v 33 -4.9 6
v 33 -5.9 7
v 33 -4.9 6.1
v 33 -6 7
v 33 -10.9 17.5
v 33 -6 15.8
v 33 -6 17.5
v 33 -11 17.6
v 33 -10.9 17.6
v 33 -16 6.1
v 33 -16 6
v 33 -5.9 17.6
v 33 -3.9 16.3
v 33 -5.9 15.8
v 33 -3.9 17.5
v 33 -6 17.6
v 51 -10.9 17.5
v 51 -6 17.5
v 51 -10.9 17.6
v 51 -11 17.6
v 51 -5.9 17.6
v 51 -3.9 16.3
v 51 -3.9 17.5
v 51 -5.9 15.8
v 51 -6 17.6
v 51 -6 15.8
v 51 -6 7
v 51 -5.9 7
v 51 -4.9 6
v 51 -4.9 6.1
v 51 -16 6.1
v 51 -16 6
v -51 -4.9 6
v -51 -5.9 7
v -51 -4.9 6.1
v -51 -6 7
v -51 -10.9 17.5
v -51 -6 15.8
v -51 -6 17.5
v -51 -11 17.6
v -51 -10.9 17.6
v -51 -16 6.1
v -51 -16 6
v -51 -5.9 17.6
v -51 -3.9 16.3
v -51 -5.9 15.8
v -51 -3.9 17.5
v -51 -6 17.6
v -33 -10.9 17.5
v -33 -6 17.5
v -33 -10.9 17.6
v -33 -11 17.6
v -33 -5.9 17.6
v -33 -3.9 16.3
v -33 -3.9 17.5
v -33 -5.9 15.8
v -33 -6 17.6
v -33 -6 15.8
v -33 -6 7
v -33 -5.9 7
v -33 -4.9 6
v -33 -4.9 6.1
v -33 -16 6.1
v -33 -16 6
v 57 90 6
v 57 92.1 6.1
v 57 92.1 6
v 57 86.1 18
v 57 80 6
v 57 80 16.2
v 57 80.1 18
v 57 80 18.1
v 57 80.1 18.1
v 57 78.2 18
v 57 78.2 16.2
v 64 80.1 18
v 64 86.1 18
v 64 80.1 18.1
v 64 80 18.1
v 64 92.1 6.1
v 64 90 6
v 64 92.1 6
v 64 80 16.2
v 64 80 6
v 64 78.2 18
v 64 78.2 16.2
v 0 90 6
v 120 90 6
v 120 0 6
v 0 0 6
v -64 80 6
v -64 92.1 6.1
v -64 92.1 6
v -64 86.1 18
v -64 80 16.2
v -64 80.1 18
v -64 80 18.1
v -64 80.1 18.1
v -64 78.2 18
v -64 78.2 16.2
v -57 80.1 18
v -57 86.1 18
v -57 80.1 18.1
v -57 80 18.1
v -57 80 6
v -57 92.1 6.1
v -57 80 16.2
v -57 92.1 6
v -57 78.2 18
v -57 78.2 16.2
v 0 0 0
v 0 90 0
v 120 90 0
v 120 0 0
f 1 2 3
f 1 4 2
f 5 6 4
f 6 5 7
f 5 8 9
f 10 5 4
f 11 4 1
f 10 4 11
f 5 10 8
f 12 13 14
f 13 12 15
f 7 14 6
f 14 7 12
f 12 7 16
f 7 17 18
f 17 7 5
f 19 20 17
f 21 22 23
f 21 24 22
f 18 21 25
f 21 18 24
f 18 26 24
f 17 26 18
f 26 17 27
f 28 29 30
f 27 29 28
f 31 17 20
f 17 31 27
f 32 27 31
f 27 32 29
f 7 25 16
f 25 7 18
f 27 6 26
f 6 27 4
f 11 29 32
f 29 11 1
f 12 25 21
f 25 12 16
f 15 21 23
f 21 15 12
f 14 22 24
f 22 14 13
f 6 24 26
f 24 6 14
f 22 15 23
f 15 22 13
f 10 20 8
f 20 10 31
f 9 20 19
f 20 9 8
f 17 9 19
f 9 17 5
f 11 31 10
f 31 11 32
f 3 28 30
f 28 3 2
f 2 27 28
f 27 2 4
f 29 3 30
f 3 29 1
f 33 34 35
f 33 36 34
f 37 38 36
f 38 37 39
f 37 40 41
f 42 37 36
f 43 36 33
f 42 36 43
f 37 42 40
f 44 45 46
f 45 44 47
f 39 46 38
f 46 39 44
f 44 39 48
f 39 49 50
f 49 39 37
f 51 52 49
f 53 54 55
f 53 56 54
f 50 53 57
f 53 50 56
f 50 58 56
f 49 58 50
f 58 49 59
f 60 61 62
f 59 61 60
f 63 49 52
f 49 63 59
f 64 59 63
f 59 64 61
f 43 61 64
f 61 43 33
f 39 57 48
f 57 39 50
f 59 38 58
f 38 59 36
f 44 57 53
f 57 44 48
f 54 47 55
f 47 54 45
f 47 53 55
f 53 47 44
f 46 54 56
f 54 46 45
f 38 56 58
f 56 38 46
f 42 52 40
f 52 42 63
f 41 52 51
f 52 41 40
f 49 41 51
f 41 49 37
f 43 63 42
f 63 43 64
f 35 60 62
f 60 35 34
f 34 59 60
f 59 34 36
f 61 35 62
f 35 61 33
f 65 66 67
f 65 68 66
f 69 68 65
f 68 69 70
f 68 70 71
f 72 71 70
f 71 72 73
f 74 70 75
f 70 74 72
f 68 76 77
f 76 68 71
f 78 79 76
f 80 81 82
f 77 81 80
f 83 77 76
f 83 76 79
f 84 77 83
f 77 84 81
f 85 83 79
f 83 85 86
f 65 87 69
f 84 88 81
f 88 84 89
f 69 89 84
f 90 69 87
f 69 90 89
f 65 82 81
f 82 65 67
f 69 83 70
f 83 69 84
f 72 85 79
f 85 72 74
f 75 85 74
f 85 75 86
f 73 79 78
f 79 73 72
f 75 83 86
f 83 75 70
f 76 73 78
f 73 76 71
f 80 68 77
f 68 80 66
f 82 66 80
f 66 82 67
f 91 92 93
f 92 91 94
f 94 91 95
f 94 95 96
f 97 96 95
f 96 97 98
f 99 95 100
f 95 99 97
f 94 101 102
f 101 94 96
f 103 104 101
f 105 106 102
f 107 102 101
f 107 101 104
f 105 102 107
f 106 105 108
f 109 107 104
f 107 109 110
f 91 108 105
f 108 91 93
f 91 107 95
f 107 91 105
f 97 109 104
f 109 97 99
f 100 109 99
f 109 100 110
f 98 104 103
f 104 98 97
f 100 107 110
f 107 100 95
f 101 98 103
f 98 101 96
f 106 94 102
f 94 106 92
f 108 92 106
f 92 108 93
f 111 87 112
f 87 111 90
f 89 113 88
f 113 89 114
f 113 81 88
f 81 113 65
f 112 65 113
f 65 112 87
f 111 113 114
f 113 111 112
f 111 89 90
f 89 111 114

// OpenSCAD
$fn = 32;

// 1. Module Gờ Hãm Đuôi Liền Thân Có Gân Tam Giác & Góc Lượn R >= 3.5mm
module rear_gusseted_retaining_lip(sx = 1, T_deck = 6.0) {
    x_center = sx * 42.0;
    w_x = 18.0; // Rộng 18mm ôm vững mép sau K2 Hub
    
    // Khối vách chính dày 5.0mm (Y in [-11.0, -6.0]), cao 11.5mm (Z in [T_deck, T_deck + 11.5])
    translate([x_center - w_x/2, -11.0, T_deck]) {
        cube([w_x, 5.0, 11.5]);
        
        // Mép ngàm hãm vát nêm 45° nhô vào +Y 2.0mm (Y in [-6.0, -4.0]) ở Z = 10.0..11.5mm
        translate([0, 5.0, 9.8])
            hull() {
                cube([w_x, 0.1, 1.7]);
                translate([0, 2.0, 0.5]) cube([w_x, 0.1, 1.2]);
                translate([0, 0, 1.7]) cube([w_x, 0.1, 0.1]);
            }
            
        // Gân tam giác chịu lực khổng lồ ở mặt sau (Gusset Ribs dốc 45° từ Z=11.5 xuống Z=0)
        translate([0, -5.0, 0])
            hull() {
                cube([w_x, 0.1, 0.1]);
                translate([0, 5.0, 0]) cube([w_x, 0.1, 11.5]);
                translate([0, 5.0, 11.5]) cube([w_x, 0.1, 0.1]);
            }
    }
    
    // Vuốt góc lượn chuyển tiếp R = 3.5mm tại chân ngàm (Fillet Transition)
    translate([x_center - w_x/2, -11.0, T_deck]) {
        // Góc lượn lưng sau
        hull() {
            translate([0, -3.5, 0]) cube([w_x, 0.1, 0.1]);
            translate([0, 0, 0]) cube([w_x, 0.1, 3.5]);
        }
        // Vát chân trước chống kẹt mép bo K2 Hub
        translate([0, 5.0, 0])
            hull() {
                cube([w_x, 0.1, 1.0]);
                translate([0, 1.0, 0]) cube([w_x, 0.1, 0.1]);
            }
    }
}

// 2. Module Gờ Hãm Góc Trước Có Gân Tam Giác & Mép Vát Nêm
module front_reinforced_corner_lip(sx = 1, T_deck = 6.0) {
    x_pos = sx * 57.0 - (sx > 0 ? 0 : 7.0);
    w_x = 7.0; // Dày 7mm theo trục X
    l_y = 6.0; // Dày 6mm theo trục Y (thay vì 2.2mm mỏng manh cũ!)
    h_z = 12.0; // Cao 12mm
    
    translate([x_pos, 80.0, T_deck]) {
        // Trụ chịu lực chính dày 7.0 x 6.0 mm
        cube([w_x, l_y, h_z]);
        
        // Mép ngàm hãm vát nêm 45° nhô vào -Y 1.8mm ở Z = 10.2..12.0mm
        translate([0, -1.8, 10.2])
            hull() {
                cube([w_x, 1.8, 1.8]);
                translate([0, 1.8, 1.8]) cube([w_x, 0.1, 0.1]);
            }
            
        // Gân tam giác dốc 45° trợ lực hướng ra trước (+Y, dốc từ Z=12 xuống Z=0)
        translate([0, l_y, 0])
            hull() {
                cube([w_x, 0.1, h_z]);
                translate([0, 6.0, 0]) cube([w_x, 0.1, 0.1]);
                cube([w_x, 0.1, 0.1]);
            }
    }
    
    // Vuốt góc lượn chân đế R = 3.5mm
    translate([x_pos, 80.0, T_deck]) {
        hull() {
            translate([0, l_y, 0]) cube([w_x, 0.1, 3.5]);
            translate([0, l_y + 3.5, 0]) cube([w_x, 0.1, 0.1]);
        }
    }
}

// Giả lập mặt sàn
cube([120, 90, 6]);

// 2 ngàm đuôi gia cố
rear_gusseted_retaining_lip(1);
rear_gusseted_retaining_lip(-1);

// 2 ngàm trước gia cố
front_reinforced_corner_lip(1);
front_reinforced_corner_lip(-1);
